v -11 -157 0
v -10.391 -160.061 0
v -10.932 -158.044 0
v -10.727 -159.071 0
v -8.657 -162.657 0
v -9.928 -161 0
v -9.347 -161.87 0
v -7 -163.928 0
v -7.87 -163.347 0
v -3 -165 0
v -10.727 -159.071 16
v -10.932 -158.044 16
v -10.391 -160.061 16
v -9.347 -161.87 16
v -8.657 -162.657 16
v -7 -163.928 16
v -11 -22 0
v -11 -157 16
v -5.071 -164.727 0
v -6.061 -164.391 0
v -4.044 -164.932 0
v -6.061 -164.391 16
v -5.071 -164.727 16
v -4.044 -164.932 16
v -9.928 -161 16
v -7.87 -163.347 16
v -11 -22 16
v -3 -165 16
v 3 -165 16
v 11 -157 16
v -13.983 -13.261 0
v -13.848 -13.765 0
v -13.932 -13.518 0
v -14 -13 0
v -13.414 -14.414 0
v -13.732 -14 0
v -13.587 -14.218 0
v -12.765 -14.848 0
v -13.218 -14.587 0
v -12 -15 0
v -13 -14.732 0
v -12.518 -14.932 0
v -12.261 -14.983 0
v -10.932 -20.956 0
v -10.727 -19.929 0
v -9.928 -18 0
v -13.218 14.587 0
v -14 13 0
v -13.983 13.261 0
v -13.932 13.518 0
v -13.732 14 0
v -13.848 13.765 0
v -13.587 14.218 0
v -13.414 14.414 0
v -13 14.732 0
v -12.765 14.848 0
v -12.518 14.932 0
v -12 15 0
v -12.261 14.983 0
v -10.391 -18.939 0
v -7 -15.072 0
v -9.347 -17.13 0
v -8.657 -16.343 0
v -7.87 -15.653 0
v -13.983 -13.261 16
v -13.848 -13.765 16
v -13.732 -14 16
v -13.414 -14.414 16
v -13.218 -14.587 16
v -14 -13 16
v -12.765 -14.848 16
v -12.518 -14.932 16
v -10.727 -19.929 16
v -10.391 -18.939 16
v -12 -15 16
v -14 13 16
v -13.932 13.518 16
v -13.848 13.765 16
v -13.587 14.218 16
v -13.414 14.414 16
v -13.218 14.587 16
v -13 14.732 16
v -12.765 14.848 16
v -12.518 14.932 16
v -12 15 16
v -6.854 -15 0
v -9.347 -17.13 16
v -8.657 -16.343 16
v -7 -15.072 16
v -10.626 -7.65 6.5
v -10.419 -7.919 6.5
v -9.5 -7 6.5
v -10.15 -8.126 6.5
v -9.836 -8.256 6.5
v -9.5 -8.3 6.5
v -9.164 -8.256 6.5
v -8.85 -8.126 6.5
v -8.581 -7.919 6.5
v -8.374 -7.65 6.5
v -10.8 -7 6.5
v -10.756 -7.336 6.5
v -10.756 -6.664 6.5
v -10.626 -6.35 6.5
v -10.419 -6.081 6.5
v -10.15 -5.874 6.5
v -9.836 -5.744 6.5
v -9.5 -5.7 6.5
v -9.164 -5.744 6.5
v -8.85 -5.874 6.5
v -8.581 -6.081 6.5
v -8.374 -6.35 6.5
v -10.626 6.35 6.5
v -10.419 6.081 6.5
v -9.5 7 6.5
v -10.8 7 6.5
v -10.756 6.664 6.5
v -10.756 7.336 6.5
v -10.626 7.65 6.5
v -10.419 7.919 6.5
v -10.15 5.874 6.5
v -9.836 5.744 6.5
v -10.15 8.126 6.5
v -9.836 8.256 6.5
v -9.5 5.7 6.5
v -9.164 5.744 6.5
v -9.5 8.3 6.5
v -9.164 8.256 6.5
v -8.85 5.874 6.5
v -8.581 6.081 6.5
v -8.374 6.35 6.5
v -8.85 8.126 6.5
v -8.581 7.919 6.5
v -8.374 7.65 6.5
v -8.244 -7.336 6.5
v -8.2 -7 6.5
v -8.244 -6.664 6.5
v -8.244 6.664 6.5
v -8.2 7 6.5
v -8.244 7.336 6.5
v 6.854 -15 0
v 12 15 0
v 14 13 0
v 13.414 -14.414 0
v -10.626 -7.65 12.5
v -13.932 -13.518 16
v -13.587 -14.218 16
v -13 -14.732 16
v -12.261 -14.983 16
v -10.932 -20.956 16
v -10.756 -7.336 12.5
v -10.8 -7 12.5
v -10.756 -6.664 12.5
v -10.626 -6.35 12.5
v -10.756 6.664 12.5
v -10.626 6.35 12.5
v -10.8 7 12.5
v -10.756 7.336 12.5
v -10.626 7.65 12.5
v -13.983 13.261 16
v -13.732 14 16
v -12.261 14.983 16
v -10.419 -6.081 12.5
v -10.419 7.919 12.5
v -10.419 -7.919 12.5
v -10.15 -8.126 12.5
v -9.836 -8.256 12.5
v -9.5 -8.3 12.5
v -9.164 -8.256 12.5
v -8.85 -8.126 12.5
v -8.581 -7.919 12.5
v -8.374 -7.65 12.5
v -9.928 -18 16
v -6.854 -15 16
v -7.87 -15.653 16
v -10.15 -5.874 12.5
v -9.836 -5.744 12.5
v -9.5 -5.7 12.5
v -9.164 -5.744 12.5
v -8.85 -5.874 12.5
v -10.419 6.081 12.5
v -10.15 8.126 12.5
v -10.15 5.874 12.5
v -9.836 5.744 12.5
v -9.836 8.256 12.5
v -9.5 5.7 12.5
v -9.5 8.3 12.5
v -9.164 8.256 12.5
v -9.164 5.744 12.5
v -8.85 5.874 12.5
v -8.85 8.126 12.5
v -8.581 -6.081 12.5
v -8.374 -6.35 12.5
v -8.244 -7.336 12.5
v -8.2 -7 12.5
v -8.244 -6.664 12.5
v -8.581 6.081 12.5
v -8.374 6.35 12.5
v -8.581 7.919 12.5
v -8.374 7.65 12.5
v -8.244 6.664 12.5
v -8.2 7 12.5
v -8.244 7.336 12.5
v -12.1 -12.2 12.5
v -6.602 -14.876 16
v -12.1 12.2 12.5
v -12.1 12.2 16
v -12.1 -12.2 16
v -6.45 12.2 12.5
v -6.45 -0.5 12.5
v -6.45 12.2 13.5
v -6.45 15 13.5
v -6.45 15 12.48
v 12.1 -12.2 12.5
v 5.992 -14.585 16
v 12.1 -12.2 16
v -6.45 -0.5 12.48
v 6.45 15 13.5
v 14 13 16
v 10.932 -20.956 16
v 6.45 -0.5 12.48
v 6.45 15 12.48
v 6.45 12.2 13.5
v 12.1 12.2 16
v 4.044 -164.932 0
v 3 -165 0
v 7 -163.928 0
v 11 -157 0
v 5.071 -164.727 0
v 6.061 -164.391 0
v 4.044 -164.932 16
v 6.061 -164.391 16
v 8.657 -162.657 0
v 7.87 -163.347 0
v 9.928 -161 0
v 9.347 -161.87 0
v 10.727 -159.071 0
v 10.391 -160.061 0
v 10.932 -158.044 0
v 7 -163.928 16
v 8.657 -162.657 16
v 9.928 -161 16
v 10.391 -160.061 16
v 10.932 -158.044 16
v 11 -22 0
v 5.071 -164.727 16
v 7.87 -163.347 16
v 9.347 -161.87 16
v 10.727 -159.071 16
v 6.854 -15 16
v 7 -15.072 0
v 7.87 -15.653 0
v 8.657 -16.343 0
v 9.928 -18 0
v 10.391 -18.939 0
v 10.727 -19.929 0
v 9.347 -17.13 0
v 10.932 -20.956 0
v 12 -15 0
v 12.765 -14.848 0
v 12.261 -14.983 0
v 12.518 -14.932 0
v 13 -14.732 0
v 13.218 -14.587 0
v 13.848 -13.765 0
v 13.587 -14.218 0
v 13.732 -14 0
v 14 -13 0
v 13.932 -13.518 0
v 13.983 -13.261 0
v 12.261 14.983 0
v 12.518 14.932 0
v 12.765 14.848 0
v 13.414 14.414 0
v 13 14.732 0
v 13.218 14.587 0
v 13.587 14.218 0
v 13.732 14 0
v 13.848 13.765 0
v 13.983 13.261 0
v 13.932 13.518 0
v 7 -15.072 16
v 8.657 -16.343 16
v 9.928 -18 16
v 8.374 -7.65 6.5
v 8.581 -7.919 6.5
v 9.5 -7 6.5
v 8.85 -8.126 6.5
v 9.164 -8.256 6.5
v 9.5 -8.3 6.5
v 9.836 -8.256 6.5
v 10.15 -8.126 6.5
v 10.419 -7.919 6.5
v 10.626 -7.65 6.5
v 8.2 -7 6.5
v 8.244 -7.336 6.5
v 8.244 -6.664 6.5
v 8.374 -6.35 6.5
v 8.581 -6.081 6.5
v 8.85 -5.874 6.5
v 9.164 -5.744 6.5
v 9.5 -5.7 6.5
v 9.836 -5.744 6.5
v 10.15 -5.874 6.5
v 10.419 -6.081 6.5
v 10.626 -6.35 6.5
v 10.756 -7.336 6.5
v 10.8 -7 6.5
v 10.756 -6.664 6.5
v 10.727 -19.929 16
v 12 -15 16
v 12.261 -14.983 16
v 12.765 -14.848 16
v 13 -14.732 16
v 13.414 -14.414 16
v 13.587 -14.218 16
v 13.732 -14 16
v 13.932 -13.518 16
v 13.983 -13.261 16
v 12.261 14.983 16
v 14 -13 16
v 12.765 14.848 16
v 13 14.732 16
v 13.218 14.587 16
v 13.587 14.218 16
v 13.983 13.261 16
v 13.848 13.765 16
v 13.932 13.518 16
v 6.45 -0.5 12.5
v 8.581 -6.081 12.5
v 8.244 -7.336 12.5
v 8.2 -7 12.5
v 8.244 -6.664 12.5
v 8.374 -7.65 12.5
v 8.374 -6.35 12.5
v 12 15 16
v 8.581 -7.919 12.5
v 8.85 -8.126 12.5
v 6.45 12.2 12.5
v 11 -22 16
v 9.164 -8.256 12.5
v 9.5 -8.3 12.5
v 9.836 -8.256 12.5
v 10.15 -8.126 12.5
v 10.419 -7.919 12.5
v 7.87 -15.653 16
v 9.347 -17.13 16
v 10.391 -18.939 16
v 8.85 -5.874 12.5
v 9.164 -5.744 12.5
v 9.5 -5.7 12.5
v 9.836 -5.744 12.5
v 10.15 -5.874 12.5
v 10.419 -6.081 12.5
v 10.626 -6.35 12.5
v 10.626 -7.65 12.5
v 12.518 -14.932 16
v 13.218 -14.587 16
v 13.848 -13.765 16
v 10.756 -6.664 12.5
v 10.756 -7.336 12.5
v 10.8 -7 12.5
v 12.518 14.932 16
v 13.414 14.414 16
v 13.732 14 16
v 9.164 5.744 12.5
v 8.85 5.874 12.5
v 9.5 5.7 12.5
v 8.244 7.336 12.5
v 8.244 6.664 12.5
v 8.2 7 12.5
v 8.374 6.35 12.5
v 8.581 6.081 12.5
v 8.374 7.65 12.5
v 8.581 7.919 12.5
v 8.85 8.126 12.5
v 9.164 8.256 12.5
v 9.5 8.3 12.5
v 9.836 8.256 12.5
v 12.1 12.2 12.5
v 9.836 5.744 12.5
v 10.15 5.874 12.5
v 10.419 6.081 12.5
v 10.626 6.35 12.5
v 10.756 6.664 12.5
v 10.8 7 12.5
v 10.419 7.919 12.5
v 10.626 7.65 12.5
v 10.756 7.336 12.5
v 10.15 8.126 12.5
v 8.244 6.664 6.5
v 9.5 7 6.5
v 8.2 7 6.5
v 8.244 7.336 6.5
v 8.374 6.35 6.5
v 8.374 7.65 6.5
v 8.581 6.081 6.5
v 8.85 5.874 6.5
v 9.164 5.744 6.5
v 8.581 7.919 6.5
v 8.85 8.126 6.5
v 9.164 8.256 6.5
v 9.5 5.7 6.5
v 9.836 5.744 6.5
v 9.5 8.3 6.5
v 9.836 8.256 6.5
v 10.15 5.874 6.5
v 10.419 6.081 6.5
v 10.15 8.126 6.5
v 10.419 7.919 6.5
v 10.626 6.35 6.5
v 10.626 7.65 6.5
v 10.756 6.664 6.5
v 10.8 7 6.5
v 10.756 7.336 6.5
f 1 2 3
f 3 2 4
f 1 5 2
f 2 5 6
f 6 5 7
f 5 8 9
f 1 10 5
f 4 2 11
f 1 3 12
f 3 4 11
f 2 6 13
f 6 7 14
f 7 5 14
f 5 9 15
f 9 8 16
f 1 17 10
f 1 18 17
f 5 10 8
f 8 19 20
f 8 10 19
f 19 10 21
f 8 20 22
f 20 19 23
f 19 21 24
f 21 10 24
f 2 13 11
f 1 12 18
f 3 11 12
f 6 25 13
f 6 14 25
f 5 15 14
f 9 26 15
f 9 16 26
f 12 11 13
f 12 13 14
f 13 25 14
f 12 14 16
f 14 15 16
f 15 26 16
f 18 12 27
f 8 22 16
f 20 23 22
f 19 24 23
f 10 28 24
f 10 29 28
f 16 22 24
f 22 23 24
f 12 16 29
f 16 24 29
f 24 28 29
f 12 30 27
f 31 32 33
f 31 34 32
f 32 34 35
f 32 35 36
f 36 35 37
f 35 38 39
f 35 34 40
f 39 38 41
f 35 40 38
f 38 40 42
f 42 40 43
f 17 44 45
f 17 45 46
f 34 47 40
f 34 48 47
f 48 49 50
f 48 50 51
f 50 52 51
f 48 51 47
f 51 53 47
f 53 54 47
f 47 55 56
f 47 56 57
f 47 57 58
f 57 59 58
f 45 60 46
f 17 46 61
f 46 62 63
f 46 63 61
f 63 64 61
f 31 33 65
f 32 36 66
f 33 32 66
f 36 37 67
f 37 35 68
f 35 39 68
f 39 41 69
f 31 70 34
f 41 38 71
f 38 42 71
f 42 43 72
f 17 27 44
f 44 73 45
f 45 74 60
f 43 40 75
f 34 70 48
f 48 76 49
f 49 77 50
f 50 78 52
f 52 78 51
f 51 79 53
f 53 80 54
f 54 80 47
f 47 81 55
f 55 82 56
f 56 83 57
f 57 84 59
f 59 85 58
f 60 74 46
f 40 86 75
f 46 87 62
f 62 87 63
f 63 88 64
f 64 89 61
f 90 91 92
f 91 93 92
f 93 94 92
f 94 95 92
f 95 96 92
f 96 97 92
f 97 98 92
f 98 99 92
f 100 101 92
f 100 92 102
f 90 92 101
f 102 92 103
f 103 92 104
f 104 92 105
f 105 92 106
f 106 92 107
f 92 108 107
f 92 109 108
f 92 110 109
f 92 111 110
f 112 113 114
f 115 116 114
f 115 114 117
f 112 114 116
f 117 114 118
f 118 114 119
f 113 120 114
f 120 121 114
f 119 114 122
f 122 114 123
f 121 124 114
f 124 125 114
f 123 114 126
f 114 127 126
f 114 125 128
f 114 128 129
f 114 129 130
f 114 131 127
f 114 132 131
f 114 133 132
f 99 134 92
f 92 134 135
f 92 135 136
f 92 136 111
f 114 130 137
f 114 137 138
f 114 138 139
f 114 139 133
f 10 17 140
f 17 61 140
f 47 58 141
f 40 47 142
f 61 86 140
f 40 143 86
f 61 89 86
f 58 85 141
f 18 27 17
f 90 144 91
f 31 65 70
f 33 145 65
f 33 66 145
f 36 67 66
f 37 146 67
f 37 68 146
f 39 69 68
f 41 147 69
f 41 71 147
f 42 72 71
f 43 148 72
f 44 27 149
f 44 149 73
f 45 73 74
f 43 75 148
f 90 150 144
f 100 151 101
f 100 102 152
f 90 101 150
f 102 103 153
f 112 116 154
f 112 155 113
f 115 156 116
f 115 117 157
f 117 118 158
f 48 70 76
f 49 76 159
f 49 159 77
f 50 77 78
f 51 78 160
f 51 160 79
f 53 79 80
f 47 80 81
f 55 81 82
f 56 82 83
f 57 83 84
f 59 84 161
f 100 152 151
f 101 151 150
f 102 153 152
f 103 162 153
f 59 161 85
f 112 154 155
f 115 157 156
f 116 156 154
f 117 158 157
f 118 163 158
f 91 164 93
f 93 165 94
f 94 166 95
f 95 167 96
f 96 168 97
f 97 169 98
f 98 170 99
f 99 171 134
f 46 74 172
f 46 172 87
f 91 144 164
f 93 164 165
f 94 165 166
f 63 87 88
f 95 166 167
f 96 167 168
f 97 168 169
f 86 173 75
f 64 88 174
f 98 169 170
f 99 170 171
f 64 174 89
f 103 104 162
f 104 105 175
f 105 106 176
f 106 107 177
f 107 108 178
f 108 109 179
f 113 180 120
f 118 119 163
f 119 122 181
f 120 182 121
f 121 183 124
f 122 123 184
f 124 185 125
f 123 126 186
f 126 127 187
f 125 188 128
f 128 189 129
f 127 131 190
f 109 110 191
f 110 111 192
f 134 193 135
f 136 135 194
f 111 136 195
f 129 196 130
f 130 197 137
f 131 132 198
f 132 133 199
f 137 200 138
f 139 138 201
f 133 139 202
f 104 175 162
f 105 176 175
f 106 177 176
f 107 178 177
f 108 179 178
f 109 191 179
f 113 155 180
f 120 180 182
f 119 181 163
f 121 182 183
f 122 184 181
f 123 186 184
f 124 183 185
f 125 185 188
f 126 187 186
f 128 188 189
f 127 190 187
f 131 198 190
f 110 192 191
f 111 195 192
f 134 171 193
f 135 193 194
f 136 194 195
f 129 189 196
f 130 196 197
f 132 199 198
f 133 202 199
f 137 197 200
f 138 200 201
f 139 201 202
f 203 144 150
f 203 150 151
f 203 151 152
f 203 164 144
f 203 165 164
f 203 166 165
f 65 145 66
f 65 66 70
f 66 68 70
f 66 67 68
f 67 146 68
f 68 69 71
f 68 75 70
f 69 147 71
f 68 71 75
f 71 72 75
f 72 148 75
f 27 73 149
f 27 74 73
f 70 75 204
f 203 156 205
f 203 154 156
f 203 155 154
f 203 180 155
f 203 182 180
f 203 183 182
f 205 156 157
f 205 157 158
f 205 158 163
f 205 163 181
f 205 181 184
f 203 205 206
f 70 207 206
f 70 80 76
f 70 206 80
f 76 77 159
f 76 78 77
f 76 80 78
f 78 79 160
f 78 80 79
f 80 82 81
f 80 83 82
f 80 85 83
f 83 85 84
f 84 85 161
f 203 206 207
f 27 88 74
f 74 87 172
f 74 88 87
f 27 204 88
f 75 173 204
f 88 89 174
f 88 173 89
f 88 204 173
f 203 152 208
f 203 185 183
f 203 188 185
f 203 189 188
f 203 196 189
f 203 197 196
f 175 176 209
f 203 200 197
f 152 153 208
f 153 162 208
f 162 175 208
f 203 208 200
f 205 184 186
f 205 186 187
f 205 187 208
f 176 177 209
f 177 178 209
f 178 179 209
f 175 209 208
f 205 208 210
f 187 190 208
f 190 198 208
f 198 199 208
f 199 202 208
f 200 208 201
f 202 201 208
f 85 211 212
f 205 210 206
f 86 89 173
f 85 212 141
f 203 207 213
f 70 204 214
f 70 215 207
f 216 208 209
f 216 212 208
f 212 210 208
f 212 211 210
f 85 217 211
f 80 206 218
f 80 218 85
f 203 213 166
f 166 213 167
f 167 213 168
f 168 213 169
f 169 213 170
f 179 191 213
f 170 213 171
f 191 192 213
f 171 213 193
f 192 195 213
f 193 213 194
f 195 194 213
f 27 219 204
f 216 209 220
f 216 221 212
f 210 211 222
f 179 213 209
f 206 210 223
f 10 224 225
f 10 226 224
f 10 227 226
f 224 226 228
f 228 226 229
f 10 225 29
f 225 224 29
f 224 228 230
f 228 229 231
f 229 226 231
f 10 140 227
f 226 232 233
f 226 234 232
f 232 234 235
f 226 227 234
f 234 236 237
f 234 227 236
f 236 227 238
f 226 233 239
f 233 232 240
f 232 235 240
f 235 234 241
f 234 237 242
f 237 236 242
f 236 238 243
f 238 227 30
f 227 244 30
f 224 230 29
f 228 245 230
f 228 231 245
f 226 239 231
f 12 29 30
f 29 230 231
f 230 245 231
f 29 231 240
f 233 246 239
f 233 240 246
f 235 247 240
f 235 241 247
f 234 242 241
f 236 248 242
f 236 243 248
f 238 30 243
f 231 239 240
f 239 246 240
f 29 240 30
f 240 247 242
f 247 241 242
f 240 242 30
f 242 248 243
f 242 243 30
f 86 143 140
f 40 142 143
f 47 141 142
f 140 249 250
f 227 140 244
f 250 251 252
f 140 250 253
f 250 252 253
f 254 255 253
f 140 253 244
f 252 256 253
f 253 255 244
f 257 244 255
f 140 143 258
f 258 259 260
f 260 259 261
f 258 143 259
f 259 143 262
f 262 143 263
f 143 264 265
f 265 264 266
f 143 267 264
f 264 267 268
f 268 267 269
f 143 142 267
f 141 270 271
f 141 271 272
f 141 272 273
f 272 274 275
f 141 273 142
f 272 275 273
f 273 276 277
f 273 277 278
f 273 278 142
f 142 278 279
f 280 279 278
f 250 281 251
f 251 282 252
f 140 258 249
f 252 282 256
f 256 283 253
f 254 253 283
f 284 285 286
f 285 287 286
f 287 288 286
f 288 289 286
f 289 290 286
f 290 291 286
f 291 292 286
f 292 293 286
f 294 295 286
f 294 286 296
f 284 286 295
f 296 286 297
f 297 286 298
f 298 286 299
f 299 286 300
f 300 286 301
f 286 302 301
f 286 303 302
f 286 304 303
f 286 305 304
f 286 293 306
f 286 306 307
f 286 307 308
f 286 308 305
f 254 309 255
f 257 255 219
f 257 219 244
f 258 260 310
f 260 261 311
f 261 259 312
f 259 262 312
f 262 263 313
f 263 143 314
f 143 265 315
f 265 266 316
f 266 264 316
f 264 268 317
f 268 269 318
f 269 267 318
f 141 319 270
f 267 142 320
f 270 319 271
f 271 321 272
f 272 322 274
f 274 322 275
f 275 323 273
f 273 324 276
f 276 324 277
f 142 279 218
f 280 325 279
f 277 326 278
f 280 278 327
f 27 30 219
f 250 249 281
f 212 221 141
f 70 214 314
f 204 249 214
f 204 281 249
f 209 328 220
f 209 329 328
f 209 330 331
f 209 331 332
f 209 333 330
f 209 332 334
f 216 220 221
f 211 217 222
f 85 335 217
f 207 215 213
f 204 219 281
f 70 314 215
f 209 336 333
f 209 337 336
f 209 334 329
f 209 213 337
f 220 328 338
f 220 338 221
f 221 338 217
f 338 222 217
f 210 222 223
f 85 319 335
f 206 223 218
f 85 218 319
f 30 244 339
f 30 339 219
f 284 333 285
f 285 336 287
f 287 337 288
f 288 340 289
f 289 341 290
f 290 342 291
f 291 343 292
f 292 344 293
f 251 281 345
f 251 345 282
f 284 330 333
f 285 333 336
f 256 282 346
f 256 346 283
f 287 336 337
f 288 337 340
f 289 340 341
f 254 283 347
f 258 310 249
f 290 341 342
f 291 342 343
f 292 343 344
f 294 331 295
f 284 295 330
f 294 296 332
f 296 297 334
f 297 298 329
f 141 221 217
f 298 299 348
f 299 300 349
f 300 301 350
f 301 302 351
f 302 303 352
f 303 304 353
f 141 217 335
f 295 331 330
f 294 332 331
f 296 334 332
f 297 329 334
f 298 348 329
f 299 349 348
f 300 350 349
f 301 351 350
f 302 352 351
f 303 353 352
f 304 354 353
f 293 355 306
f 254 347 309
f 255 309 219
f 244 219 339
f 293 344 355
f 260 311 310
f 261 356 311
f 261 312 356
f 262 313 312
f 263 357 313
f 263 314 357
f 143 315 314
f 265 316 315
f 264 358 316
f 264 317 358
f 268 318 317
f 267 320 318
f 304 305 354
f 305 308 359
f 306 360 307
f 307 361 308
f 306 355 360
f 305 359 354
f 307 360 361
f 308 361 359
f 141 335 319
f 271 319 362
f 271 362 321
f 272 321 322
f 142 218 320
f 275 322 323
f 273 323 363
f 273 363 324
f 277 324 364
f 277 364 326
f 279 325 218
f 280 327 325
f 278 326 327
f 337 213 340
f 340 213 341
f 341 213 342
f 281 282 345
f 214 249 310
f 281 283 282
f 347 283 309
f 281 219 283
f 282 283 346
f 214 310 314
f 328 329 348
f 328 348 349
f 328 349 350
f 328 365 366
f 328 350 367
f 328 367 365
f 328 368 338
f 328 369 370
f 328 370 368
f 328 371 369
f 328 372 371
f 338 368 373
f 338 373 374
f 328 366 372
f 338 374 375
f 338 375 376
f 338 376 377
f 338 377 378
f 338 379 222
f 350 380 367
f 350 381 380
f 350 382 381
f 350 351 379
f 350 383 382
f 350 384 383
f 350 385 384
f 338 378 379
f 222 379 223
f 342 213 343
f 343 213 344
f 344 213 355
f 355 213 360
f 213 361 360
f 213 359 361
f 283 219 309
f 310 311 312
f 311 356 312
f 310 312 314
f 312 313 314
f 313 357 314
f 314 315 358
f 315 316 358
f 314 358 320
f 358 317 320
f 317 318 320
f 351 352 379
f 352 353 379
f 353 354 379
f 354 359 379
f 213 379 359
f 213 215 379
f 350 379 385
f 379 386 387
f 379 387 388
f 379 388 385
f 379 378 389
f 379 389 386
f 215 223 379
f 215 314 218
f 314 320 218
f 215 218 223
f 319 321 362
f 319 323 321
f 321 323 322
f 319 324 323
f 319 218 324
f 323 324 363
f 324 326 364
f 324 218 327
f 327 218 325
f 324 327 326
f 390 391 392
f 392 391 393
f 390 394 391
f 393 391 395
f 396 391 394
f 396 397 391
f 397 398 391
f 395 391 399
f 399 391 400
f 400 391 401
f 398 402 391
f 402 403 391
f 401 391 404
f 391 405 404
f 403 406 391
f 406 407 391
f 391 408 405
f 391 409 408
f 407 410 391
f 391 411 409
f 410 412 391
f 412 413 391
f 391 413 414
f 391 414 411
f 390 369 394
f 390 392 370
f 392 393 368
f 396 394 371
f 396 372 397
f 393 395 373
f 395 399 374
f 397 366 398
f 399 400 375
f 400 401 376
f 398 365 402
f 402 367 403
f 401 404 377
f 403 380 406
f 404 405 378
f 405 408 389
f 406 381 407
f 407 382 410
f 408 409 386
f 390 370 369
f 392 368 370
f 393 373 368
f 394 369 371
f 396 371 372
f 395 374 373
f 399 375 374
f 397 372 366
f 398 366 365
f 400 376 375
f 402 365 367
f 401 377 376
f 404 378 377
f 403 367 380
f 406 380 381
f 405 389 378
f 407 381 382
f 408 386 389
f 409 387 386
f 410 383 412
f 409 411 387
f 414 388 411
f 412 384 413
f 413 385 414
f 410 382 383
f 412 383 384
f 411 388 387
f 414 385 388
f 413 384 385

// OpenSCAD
// =====================================================================
//  hand_wand_handle.scad — Stage-0 HAND WAND handle
//  PROJECT SCRATCH · 05-engineering/cad/tips · units: mm
//  A 180 mm printed handle (150 mm grip + 30 mm clamp block) that clamps one end
//  of a 0.3 x 12.7 mm feeler-stock leaf (no holes in the leaf: window + clamp bar
//  + 4x M3x8, bar 24 x 24).  The leaf runs out along +Y; its free end carries
//  paddle_with_pocket.scad (same clamp design) with a TM1 pocket, 25 mm drafted
//  paddle and any SP1 tip.  Leaf free length LEAF_FREE (handle face to paddle -Y
//  face) sets the normal stiffness AT THE TIP.  The leaf also flexes 3 mm inside each
//  wall slot (bar edge to wall) and the tip sits 4 mm past the paddle bar edge, so
//  k = EI / (a^3/3 + a^2 b + a b^2), a = LEAF_FREE + 6, b = 4, EI = 5715 N mm^2
//  (E = 200 GPa, I = 12.7 x 0.3^3 / 12):
//    30 mm 0.27 N/mm · 35 mm 0.19 · 38 mm 0.155 (default) · 40 mm 0.14 · 45 mm 0.10
//  (rev 2026-10-01: the old table used 3EI/L^3 on LEAF_FREE and overstated k 1.75x;
//  48 mm actually gives 0.09 N/mm, below the DESIGN-FREEZE 0.1-0.25 band).
//  Calibrate on the kitchen scale (tips.md 7.3) and trim the leaf to suit.
//  Print flat as modelled (window up), PETG or PLA (handle never touches hair),
//  0.2 mm layers, 15 % infill, 3 perimeters.  No bridges.
//  PART = "handle" | "bar" | "assembly"
// =====================================================================
include <tm1_tang_lib.scad>
$fn = TM1_FN;

PART = "handle";

HANDLE_LEN = 150;   // grip length along -Y
HANDLE_X   = 22;    // grip width
HANDLE_H   = 16;    // grip height
HANDLE_R   = 8;     // grip corner radius (vertical corners)
BLOCK_X    = 28;    // clamp block
BLOCK_Y    = 30;
BLOCK_H    = 16;
BLOCK_R    = 2;
LEAF_W     = 12.7;
LEAF_T     = 0.30;
WINDOW_X   = 24.2;
WINDOW_Y   = 24.4;
WINDOW_D   = 3.5;   // leaf floor at BLOCK_H - WINDOW_D = 12.5
WALL_SLOT_W = LEAF_W + 0.2;
WALL_SLOT_H = 1.0;
SCREWS     = [[-9.5, -7], [9.5, -7], [-9.5, 7], [9.5, 7]];   // rev: was +/-10 (holes broke out of the bar)
SCREW_HOLE_D = 2.6; // M3 thread-forming in PETG/PLA (4.0 for inserts)
SCREW_DEPTH  = 6;
BAR_X      = 24;
BAR_Y      = 24;
BAR_H      = 3.2;
BAR_GROOVE_D = 0.25;
BAR_HOLE_D = 3.4;
LEAF_FREE  = 38;    // documentation only: leaf free length to the paddle root (-Y face); 0.155 N/mm

z_floor = BLOCK_H - WINDOW_D;

module rr_prism(x, y, h, r) { linear_extrude(height = h) tm1_rrect(x, y, r); }

module handle_body() {
    // grip: from y = -(BLOCK_Y/2 + HANDLE_LEN) to y = -BLOCK_Y/2 (+1 overlap)
    translate([0, -BLOCK_Y / 2 - HANDLE_LEN / 2 + 0.5, 0]) rr_prism(HANDLE_X, HANDLE_LEN + 1, HANDLE_H, HANDLE_R);
    rr_prism(BLOCK_X, BLOCK_Y, BLOCK_H, BLOCK_R);
}

module handle_cuts() {
    translate([0, 0, z_floor + 50]) cube([WINDOW_X, WINDOW_Y, 100], center = true);
    // leaf exit slot through the +Y wall only (leaf ends blind in the -Y wall)
    translate([0, BLOCK_Y / 4, z_floor - 0.01 + WALL_SLOT_H / 2]) cube([WALL_SLOT_W, BLOCK_Y / 2 + 1, WALL_SLOT_H + 0.02], center = true);
    for (s = SCREWS) translate([s[0], s[1], z_floor - SCREW_DEPTH]) cylinder(d = SCREW_HOLE_D, h = SCREW_DEPTH + 0.01, $fn = 24);
}

module handle() { difference() { handle_body(); handle_cuts(); } }

module clamp_bar() {
    difference() {
        translate([0, 0, BAR_H / 2]) cube([BAR_X, BAR_Y, BAR_H], center = true);
        translate([0, 0, BAR_GROOVE_D / 2 - 0.01]) cube([LEAF_W + 0.2, BAR_Y + 2, BAR_GROOVE_D + 0.02], center = true);
        for (s = SCREWS) translate([s[0], s[1], -1]) cylinder(d = BAR_HOLE_D, h = BAR_H + 2, $fn = 24);
    }
}

if (PART == "handle") handle();
if (PART == "bar") clamp_bar();
if (PART == "assembly") {
    color("orange") handle();
    color("gray") translate([0, 0, z_floor + LEAF_T - BAR_GROOVE_D]) clamp_bar();
    // leaf: 27 mm inside the block + LEAF_FREE + 14 mm in the paddle root
    color("silver") translate([0, -BLOCK_Y / 2 + 2.8 + (27 + LEAF_FREE + 14) / 2, z_floor + LEAF_T / 2])
        cube([LEAF_W, 27 + LEAF_FREE + 14, LEAF_T], center = true);
}
